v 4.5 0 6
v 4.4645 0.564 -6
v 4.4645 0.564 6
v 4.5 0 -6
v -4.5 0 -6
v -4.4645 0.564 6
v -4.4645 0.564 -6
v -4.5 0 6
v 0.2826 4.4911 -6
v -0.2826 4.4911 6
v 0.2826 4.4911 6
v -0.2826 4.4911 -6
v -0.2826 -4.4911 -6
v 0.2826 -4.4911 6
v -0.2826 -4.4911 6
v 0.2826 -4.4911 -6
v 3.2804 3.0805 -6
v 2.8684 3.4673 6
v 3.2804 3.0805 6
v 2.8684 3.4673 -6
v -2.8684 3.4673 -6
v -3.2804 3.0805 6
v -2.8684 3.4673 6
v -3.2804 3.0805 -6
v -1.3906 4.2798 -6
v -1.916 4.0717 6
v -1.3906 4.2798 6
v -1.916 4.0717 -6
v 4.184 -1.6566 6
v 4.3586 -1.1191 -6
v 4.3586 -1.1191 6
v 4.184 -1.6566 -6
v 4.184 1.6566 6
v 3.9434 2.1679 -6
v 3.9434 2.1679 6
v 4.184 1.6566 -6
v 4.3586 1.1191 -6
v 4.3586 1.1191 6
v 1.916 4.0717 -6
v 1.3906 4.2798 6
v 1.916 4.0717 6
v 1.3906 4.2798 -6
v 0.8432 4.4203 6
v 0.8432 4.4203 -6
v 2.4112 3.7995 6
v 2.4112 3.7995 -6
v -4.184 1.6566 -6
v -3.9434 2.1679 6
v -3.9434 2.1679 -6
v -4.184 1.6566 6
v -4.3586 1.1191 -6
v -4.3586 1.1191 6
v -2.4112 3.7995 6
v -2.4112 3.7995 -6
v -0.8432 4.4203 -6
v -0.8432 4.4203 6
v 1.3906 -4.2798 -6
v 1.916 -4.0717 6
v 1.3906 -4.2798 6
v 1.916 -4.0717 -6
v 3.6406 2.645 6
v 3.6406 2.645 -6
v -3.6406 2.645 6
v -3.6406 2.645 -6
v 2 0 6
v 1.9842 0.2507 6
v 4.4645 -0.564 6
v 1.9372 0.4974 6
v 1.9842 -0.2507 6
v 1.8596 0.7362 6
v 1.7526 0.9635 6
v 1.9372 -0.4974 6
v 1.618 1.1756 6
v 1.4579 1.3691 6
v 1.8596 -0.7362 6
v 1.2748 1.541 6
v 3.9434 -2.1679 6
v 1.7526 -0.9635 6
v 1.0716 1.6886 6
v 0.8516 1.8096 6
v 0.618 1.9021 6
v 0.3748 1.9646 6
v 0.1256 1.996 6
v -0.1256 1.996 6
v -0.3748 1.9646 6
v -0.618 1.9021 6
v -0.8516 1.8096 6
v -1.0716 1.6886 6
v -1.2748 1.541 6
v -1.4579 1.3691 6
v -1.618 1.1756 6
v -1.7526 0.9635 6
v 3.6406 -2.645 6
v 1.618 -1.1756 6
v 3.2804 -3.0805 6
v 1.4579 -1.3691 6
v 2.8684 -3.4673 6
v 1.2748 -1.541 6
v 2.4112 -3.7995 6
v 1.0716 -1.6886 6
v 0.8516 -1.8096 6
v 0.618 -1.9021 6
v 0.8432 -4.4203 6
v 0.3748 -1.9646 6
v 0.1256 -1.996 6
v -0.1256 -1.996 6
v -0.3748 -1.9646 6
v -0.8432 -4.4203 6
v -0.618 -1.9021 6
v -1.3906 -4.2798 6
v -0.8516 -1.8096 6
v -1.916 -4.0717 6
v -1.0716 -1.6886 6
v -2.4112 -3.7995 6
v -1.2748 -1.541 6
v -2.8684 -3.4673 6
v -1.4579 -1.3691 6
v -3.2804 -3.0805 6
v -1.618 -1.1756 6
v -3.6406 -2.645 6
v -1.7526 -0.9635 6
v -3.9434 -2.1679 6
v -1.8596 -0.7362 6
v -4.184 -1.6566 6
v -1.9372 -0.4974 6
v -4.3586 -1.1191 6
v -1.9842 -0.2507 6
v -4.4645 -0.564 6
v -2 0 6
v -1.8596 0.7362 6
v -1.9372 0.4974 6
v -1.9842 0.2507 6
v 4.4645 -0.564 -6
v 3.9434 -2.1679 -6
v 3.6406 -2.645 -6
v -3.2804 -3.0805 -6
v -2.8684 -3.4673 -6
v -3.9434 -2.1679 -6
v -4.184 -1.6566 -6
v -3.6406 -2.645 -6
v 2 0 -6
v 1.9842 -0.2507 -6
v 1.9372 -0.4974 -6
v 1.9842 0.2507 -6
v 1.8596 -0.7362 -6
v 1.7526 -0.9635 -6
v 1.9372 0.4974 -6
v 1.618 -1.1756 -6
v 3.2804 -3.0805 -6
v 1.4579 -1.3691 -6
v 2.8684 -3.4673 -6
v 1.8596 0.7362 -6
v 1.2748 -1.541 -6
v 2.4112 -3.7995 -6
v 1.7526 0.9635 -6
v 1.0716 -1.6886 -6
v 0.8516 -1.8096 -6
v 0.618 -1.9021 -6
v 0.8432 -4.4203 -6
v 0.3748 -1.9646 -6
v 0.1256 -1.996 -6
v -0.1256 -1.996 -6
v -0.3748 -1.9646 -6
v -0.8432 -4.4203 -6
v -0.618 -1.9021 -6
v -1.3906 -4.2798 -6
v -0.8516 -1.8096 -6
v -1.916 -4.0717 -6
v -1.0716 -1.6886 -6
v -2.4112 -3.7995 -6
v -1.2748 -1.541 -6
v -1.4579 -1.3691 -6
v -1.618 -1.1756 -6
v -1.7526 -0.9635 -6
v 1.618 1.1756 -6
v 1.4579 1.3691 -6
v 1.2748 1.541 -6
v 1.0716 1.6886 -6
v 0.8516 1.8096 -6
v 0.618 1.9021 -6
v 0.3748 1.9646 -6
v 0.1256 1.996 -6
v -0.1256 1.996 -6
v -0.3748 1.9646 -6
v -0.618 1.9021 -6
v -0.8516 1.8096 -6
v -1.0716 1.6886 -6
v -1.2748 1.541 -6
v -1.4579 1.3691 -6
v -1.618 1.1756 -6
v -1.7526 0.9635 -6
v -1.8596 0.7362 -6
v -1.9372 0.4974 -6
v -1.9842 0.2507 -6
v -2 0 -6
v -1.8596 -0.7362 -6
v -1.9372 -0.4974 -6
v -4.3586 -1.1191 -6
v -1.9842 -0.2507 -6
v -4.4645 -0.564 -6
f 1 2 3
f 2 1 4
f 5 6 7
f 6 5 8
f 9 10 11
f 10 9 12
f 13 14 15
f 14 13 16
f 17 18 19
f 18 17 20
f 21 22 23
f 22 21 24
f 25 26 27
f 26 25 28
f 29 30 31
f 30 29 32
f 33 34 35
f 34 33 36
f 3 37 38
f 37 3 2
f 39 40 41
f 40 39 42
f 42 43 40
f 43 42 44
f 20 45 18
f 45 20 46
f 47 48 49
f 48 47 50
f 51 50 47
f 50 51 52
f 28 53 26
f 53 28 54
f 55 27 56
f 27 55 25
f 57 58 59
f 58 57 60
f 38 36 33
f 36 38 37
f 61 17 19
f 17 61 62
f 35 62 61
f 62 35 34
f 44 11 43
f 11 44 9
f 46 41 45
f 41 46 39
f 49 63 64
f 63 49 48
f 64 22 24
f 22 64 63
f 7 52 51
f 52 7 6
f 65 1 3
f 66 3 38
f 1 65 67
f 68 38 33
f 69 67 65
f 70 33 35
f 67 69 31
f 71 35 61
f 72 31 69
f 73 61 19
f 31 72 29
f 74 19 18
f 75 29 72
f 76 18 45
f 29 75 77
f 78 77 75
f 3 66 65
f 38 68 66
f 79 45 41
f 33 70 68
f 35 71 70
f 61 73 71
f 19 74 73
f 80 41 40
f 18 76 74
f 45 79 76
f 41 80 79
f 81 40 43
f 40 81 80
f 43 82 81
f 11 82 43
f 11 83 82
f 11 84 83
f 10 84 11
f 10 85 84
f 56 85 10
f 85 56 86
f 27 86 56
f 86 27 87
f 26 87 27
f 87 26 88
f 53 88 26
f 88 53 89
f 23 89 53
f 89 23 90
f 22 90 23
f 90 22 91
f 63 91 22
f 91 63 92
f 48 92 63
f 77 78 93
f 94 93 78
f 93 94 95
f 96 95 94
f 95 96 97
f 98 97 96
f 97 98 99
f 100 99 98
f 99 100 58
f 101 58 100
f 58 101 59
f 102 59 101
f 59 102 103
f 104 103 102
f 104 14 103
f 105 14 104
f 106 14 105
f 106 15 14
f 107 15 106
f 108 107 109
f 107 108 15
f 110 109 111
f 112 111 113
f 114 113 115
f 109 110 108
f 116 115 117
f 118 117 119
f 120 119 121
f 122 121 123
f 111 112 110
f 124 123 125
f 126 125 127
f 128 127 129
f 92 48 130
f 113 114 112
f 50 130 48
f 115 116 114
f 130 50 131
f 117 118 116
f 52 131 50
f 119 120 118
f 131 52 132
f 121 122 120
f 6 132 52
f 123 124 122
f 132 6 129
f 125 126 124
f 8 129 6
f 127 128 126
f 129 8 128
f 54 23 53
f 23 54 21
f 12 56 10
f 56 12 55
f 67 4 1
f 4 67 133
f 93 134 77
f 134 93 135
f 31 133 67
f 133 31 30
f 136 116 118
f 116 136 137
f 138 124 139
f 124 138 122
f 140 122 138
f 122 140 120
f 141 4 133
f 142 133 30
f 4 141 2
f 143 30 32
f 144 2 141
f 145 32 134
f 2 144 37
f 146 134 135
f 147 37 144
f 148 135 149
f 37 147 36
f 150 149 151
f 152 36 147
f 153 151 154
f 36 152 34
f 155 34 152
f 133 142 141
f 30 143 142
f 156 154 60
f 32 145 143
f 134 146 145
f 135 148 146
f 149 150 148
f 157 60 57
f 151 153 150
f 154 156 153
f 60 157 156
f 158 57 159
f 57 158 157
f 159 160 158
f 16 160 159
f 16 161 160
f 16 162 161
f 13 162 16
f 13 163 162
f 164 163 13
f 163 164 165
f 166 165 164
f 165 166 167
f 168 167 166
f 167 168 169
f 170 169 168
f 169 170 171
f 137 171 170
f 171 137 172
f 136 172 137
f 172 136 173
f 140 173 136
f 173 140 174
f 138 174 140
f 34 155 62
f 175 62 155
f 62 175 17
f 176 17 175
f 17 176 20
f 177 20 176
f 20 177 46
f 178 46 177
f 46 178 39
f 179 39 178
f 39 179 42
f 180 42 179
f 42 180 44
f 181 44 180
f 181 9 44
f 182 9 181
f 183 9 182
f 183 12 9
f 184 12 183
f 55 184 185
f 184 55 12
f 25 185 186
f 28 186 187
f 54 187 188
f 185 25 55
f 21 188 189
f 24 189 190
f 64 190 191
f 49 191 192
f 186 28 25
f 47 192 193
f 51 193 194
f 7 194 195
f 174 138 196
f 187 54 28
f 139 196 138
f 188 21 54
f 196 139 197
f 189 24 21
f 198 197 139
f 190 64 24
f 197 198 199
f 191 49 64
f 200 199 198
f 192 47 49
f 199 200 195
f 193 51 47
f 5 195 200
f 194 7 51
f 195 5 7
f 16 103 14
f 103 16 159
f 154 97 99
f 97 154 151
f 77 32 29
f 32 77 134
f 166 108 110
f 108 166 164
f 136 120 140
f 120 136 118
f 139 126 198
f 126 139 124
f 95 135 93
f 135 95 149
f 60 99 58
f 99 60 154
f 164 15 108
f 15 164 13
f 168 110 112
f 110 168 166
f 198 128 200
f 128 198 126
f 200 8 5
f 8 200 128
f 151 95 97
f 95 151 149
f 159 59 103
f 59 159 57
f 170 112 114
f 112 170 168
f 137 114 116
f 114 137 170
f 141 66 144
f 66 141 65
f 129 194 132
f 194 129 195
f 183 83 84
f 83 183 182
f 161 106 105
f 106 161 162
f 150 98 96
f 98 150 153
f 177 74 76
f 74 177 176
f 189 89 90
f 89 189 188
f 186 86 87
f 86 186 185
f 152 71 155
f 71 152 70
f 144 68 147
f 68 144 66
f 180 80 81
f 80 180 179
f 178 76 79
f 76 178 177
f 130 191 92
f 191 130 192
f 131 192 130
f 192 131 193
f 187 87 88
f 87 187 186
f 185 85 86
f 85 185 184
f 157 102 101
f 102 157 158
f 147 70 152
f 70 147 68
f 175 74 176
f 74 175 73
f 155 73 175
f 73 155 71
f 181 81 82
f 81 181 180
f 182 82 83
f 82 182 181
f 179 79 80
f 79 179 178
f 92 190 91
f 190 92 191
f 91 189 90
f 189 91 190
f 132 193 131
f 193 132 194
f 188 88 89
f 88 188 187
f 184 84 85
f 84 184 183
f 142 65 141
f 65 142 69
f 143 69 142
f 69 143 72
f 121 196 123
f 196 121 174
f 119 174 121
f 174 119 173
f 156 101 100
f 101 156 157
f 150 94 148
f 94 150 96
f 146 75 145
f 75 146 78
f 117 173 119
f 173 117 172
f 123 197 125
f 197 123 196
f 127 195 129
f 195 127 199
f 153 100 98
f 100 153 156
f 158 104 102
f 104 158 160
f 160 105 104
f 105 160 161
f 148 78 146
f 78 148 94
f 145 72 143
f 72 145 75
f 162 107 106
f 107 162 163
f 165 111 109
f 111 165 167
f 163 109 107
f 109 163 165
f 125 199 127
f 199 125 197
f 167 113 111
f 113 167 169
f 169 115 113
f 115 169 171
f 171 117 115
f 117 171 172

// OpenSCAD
$fn = 50;


difference() {
	union() {
		translate(v = [0, 0, -6.0000000000]) {
			cylinder(h = 12, r = 4.5000000000);
		}
	}
	union() {
		translate(v = [0, 0, -100.0000000000]) {
			cylinder(h = 200, r = 2);
		}
	}
}
